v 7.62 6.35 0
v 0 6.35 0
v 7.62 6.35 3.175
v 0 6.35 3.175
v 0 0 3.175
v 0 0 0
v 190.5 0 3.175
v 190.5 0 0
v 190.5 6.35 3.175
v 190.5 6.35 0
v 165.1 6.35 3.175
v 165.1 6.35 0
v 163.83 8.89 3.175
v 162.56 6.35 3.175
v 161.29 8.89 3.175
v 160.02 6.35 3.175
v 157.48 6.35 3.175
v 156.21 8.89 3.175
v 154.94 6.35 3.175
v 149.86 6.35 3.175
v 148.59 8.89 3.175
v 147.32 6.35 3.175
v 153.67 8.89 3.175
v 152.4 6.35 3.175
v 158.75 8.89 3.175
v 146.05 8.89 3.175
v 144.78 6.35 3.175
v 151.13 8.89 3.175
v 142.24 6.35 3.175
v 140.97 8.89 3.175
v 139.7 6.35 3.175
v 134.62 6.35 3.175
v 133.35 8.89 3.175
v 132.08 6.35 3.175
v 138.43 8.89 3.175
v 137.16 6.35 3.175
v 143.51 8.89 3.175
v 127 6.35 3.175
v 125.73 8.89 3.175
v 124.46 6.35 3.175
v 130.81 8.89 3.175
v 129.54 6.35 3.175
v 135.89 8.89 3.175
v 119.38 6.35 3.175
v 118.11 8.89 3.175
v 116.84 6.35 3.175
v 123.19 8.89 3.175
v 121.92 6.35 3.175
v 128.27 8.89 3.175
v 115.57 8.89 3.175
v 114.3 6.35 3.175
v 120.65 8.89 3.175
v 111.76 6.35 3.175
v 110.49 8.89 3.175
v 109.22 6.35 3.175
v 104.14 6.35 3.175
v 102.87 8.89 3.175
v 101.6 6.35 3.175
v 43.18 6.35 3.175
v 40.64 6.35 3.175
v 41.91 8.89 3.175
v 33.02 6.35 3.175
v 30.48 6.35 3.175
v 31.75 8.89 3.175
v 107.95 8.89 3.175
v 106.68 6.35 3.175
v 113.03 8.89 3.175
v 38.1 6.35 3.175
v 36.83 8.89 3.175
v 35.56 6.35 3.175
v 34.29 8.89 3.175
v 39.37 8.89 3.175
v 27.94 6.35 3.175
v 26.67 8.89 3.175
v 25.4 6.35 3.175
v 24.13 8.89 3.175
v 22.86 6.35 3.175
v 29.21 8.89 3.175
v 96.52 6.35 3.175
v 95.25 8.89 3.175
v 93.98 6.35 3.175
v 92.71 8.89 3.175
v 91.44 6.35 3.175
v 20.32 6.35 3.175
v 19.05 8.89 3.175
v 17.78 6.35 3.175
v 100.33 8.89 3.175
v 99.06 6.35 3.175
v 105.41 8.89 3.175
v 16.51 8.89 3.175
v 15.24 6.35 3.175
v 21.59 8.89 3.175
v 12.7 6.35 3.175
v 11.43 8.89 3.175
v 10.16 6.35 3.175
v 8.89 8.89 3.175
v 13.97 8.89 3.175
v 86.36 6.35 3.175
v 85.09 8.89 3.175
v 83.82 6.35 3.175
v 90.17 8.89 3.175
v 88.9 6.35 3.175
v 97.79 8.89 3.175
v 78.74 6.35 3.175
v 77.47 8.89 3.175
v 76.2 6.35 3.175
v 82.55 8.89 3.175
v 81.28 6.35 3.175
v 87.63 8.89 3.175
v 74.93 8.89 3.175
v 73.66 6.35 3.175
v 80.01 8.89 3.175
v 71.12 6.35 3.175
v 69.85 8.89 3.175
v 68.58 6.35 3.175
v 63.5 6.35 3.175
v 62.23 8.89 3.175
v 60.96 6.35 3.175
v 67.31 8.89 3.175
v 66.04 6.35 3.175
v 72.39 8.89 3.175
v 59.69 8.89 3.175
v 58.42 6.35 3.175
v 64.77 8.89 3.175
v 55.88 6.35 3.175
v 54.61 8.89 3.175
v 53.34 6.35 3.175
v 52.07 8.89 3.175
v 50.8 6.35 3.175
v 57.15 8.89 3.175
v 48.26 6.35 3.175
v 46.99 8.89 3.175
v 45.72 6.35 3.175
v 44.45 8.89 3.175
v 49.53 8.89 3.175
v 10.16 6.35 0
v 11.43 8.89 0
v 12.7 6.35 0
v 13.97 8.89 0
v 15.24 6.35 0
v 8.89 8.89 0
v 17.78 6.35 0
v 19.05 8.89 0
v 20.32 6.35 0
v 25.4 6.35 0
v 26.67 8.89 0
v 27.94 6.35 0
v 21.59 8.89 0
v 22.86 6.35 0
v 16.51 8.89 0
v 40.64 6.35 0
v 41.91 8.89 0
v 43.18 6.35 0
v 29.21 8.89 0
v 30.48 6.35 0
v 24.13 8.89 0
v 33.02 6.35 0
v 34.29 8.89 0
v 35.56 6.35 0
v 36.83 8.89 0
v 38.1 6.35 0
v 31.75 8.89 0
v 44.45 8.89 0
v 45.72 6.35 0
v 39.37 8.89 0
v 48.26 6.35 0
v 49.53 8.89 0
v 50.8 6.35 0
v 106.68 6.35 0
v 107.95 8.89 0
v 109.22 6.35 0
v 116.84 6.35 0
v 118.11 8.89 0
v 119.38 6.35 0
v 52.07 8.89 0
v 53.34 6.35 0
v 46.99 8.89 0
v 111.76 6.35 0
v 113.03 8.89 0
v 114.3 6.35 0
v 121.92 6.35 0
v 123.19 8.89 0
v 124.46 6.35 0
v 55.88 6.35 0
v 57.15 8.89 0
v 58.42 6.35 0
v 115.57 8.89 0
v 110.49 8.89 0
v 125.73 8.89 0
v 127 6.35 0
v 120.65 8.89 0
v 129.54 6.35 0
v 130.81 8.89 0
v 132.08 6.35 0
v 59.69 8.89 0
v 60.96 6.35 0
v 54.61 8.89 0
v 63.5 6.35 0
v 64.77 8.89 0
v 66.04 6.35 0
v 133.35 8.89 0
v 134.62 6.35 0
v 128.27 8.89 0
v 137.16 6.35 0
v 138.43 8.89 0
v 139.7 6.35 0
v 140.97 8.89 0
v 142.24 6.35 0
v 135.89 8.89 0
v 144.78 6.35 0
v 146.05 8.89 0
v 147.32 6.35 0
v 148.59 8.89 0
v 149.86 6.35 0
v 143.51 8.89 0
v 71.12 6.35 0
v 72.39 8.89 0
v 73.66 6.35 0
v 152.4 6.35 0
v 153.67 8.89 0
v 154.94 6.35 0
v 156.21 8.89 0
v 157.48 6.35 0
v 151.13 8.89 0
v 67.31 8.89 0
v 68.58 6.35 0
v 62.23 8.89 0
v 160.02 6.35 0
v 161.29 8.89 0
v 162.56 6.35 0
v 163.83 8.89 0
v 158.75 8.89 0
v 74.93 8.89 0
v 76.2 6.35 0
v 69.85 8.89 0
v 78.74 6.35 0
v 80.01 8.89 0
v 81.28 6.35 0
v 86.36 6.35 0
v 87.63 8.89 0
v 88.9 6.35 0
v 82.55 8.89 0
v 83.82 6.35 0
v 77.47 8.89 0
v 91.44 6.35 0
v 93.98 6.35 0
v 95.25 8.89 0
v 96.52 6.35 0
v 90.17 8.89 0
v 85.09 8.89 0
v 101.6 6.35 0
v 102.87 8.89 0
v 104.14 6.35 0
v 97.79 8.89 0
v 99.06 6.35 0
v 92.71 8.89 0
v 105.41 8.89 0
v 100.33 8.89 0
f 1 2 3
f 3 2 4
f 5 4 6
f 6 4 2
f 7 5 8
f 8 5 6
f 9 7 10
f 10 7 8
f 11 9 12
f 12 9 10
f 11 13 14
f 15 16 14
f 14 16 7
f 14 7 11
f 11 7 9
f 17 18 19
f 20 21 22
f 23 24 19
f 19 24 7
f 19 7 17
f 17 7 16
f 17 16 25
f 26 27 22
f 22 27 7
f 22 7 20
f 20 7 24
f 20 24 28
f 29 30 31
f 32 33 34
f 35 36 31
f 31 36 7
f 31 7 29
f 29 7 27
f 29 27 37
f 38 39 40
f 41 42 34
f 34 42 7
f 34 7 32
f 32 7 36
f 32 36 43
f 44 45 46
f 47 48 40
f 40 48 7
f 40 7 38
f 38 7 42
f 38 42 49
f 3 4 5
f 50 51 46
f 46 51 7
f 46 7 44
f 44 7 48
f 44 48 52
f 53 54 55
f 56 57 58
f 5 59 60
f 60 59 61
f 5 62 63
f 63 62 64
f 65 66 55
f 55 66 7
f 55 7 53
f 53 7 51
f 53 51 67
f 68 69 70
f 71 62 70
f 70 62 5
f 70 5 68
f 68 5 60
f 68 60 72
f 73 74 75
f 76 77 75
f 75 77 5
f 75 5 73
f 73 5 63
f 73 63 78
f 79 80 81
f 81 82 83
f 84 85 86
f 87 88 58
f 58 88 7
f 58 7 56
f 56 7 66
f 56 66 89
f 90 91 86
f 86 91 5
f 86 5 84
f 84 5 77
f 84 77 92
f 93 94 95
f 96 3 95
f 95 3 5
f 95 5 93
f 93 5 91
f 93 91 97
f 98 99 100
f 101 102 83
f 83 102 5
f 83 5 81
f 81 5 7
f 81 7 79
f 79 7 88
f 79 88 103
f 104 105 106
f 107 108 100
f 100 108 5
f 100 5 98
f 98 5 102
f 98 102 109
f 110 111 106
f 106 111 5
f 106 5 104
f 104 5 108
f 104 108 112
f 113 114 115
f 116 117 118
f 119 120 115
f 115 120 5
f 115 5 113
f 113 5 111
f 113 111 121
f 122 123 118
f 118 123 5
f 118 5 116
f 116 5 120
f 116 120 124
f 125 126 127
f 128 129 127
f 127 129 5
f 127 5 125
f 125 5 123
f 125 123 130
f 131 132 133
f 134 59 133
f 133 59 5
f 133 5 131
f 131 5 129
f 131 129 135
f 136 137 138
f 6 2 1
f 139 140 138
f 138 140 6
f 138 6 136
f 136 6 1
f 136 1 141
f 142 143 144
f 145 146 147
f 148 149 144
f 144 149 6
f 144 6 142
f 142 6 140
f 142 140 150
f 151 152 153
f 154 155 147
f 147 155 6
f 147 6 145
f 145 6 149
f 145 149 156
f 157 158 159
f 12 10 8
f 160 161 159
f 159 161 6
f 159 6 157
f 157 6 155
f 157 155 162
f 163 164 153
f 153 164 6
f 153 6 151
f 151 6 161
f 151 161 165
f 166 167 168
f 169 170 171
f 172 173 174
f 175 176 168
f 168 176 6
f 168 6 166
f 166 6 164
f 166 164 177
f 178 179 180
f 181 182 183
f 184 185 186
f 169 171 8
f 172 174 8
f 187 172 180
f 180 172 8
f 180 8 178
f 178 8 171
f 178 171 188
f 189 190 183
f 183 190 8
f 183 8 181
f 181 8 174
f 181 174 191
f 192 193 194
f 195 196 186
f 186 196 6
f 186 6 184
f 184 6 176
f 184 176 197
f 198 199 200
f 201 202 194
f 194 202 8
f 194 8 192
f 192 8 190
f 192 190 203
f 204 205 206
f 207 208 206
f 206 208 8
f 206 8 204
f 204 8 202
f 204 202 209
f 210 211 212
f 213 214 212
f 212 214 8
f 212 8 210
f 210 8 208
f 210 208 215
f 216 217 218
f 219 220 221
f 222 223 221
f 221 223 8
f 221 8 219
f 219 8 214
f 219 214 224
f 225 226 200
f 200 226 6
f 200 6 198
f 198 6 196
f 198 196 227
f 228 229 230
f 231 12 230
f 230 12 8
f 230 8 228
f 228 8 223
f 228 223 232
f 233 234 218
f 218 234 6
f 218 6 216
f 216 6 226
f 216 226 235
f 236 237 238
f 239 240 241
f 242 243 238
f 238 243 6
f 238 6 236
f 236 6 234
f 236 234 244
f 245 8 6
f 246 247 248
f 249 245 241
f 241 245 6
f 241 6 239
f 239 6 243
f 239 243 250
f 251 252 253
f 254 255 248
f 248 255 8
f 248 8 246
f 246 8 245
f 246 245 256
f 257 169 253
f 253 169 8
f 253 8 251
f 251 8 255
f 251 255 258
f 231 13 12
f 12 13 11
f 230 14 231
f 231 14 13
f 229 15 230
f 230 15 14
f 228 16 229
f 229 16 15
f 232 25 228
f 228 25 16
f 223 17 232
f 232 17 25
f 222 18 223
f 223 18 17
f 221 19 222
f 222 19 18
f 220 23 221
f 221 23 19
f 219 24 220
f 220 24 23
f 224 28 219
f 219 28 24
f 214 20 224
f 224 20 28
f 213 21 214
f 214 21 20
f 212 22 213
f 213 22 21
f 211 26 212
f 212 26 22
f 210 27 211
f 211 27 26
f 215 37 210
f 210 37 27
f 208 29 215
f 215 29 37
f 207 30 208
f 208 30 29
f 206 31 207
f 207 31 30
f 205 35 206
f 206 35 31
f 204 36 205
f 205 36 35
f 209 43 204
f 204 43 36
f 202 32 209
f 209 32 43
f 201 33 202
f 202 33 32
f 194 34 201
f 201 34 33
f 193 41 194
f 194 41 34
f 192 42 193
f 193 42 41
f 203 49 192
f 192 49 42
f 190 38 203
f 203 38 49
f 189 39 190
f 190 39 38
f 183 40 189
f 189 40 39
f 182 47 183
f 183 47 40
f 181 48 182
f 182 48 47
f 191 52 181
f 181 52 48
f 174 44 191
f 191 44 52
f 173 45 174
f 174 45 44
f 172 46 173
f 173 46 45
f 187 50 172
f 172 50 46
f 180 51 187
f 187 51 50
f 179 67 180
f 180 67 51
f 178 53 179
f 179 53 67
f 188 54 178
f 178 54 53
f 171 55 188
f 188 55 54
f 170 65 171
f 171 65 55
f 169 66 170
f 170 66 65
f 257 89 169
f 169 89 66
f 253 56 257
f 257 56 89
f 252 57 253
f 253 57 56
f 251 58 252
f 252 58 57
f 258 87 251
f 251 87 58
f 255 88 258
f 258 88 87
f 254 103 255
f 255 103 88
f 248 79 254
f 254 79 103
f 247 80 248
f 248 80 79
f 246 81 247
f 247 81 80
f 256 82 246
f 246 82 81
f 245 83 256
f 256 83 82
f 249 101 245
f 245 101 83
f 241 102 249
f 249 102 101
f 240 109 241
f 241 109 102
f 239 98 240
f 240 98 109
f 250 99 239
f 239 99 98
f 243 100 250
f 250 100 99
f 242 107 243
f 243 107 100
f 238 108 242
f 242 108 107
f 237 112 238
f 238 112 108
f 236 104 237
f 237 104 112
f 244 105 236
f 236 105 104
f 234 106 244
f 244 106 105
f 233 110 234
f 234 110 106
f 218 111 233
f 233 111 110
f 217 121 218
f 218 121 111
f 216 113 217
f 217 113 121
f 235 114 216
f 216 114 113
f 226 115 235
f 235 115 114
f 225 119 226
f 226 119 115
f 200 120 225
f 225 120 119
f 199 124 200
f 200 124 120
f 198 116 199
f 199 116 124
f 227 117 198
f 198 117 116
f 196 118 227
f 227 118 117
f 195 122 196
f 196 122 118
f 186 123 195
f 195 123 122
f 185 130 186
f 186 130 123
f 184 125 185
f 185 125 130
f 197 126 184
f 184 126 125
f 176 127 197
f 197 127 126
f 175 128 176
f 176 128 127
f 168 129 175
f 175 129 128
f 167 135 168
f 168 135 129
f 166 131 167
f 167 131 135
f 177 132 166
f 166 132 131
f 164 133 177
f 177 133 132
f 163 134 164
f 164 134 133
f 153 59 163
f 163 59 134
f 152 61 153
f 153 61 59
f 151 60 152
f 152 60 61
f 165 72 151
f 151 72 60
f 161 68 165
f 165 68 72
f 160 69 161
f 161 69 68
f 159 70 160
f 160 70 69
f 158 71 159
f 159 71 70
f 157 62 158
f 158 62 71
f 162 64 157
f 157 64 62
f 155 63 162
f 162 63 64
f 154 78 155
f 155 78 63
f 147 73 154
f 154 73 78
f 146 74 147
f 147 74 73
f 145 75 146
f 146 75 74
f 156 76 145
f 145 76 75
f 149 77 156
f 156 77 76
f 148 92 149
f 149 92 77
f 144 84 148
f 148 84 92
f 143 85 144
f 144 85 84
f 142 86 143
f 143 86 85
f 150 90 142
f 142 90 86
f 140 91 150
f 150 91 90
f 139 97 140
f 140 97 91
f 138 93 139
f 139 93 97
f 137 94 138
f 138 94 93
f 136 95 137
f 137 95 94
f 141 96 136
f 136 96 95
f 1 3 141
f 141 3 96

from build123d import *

# Parameters (mm, degrees)
SKETCH1_W           = 190.5
SKETCH1_H           = 6.35
BOSS_EXTRUDE1_DEPTH = 3.175
BOSS_EXTRUDE2_DEPTH = 3.175
LPATTERN1_COUNT     = 62
LPATTERN1_PITCH     = 2.54


with BuildPart() as part:
    # Sketch1 → Boss-Extrude1 (new body)
    with BuildSketch(Plane.XY):
        with Locations((95.25, 3.175)):
            Rectangle(SKETCH1_W, SKETCH1_H)
    extrude(amount=BOSS_EXTRUDE1_DEPTH)

    # Sketch2 → Boss-Extrude2 (add)
    with BuildSketch(Plane.XY.offset(3.175)):
        Polygon((165.1, 6.35), (163.83, 8.89), (162.56, 6.35), align=None)
    boss_extrude2 = extrude(amount=-BOSS_EXTRUDE2_DEPTH)

    # LPattern1: Boss-Extrude2 ×62
    with Locations(*[(-i * LPATTERN1_PITCH, 0, 0) for i in range(1, LPATTERN1_COUNT)]):
        add(boss_extrude2)


solid = part.part
